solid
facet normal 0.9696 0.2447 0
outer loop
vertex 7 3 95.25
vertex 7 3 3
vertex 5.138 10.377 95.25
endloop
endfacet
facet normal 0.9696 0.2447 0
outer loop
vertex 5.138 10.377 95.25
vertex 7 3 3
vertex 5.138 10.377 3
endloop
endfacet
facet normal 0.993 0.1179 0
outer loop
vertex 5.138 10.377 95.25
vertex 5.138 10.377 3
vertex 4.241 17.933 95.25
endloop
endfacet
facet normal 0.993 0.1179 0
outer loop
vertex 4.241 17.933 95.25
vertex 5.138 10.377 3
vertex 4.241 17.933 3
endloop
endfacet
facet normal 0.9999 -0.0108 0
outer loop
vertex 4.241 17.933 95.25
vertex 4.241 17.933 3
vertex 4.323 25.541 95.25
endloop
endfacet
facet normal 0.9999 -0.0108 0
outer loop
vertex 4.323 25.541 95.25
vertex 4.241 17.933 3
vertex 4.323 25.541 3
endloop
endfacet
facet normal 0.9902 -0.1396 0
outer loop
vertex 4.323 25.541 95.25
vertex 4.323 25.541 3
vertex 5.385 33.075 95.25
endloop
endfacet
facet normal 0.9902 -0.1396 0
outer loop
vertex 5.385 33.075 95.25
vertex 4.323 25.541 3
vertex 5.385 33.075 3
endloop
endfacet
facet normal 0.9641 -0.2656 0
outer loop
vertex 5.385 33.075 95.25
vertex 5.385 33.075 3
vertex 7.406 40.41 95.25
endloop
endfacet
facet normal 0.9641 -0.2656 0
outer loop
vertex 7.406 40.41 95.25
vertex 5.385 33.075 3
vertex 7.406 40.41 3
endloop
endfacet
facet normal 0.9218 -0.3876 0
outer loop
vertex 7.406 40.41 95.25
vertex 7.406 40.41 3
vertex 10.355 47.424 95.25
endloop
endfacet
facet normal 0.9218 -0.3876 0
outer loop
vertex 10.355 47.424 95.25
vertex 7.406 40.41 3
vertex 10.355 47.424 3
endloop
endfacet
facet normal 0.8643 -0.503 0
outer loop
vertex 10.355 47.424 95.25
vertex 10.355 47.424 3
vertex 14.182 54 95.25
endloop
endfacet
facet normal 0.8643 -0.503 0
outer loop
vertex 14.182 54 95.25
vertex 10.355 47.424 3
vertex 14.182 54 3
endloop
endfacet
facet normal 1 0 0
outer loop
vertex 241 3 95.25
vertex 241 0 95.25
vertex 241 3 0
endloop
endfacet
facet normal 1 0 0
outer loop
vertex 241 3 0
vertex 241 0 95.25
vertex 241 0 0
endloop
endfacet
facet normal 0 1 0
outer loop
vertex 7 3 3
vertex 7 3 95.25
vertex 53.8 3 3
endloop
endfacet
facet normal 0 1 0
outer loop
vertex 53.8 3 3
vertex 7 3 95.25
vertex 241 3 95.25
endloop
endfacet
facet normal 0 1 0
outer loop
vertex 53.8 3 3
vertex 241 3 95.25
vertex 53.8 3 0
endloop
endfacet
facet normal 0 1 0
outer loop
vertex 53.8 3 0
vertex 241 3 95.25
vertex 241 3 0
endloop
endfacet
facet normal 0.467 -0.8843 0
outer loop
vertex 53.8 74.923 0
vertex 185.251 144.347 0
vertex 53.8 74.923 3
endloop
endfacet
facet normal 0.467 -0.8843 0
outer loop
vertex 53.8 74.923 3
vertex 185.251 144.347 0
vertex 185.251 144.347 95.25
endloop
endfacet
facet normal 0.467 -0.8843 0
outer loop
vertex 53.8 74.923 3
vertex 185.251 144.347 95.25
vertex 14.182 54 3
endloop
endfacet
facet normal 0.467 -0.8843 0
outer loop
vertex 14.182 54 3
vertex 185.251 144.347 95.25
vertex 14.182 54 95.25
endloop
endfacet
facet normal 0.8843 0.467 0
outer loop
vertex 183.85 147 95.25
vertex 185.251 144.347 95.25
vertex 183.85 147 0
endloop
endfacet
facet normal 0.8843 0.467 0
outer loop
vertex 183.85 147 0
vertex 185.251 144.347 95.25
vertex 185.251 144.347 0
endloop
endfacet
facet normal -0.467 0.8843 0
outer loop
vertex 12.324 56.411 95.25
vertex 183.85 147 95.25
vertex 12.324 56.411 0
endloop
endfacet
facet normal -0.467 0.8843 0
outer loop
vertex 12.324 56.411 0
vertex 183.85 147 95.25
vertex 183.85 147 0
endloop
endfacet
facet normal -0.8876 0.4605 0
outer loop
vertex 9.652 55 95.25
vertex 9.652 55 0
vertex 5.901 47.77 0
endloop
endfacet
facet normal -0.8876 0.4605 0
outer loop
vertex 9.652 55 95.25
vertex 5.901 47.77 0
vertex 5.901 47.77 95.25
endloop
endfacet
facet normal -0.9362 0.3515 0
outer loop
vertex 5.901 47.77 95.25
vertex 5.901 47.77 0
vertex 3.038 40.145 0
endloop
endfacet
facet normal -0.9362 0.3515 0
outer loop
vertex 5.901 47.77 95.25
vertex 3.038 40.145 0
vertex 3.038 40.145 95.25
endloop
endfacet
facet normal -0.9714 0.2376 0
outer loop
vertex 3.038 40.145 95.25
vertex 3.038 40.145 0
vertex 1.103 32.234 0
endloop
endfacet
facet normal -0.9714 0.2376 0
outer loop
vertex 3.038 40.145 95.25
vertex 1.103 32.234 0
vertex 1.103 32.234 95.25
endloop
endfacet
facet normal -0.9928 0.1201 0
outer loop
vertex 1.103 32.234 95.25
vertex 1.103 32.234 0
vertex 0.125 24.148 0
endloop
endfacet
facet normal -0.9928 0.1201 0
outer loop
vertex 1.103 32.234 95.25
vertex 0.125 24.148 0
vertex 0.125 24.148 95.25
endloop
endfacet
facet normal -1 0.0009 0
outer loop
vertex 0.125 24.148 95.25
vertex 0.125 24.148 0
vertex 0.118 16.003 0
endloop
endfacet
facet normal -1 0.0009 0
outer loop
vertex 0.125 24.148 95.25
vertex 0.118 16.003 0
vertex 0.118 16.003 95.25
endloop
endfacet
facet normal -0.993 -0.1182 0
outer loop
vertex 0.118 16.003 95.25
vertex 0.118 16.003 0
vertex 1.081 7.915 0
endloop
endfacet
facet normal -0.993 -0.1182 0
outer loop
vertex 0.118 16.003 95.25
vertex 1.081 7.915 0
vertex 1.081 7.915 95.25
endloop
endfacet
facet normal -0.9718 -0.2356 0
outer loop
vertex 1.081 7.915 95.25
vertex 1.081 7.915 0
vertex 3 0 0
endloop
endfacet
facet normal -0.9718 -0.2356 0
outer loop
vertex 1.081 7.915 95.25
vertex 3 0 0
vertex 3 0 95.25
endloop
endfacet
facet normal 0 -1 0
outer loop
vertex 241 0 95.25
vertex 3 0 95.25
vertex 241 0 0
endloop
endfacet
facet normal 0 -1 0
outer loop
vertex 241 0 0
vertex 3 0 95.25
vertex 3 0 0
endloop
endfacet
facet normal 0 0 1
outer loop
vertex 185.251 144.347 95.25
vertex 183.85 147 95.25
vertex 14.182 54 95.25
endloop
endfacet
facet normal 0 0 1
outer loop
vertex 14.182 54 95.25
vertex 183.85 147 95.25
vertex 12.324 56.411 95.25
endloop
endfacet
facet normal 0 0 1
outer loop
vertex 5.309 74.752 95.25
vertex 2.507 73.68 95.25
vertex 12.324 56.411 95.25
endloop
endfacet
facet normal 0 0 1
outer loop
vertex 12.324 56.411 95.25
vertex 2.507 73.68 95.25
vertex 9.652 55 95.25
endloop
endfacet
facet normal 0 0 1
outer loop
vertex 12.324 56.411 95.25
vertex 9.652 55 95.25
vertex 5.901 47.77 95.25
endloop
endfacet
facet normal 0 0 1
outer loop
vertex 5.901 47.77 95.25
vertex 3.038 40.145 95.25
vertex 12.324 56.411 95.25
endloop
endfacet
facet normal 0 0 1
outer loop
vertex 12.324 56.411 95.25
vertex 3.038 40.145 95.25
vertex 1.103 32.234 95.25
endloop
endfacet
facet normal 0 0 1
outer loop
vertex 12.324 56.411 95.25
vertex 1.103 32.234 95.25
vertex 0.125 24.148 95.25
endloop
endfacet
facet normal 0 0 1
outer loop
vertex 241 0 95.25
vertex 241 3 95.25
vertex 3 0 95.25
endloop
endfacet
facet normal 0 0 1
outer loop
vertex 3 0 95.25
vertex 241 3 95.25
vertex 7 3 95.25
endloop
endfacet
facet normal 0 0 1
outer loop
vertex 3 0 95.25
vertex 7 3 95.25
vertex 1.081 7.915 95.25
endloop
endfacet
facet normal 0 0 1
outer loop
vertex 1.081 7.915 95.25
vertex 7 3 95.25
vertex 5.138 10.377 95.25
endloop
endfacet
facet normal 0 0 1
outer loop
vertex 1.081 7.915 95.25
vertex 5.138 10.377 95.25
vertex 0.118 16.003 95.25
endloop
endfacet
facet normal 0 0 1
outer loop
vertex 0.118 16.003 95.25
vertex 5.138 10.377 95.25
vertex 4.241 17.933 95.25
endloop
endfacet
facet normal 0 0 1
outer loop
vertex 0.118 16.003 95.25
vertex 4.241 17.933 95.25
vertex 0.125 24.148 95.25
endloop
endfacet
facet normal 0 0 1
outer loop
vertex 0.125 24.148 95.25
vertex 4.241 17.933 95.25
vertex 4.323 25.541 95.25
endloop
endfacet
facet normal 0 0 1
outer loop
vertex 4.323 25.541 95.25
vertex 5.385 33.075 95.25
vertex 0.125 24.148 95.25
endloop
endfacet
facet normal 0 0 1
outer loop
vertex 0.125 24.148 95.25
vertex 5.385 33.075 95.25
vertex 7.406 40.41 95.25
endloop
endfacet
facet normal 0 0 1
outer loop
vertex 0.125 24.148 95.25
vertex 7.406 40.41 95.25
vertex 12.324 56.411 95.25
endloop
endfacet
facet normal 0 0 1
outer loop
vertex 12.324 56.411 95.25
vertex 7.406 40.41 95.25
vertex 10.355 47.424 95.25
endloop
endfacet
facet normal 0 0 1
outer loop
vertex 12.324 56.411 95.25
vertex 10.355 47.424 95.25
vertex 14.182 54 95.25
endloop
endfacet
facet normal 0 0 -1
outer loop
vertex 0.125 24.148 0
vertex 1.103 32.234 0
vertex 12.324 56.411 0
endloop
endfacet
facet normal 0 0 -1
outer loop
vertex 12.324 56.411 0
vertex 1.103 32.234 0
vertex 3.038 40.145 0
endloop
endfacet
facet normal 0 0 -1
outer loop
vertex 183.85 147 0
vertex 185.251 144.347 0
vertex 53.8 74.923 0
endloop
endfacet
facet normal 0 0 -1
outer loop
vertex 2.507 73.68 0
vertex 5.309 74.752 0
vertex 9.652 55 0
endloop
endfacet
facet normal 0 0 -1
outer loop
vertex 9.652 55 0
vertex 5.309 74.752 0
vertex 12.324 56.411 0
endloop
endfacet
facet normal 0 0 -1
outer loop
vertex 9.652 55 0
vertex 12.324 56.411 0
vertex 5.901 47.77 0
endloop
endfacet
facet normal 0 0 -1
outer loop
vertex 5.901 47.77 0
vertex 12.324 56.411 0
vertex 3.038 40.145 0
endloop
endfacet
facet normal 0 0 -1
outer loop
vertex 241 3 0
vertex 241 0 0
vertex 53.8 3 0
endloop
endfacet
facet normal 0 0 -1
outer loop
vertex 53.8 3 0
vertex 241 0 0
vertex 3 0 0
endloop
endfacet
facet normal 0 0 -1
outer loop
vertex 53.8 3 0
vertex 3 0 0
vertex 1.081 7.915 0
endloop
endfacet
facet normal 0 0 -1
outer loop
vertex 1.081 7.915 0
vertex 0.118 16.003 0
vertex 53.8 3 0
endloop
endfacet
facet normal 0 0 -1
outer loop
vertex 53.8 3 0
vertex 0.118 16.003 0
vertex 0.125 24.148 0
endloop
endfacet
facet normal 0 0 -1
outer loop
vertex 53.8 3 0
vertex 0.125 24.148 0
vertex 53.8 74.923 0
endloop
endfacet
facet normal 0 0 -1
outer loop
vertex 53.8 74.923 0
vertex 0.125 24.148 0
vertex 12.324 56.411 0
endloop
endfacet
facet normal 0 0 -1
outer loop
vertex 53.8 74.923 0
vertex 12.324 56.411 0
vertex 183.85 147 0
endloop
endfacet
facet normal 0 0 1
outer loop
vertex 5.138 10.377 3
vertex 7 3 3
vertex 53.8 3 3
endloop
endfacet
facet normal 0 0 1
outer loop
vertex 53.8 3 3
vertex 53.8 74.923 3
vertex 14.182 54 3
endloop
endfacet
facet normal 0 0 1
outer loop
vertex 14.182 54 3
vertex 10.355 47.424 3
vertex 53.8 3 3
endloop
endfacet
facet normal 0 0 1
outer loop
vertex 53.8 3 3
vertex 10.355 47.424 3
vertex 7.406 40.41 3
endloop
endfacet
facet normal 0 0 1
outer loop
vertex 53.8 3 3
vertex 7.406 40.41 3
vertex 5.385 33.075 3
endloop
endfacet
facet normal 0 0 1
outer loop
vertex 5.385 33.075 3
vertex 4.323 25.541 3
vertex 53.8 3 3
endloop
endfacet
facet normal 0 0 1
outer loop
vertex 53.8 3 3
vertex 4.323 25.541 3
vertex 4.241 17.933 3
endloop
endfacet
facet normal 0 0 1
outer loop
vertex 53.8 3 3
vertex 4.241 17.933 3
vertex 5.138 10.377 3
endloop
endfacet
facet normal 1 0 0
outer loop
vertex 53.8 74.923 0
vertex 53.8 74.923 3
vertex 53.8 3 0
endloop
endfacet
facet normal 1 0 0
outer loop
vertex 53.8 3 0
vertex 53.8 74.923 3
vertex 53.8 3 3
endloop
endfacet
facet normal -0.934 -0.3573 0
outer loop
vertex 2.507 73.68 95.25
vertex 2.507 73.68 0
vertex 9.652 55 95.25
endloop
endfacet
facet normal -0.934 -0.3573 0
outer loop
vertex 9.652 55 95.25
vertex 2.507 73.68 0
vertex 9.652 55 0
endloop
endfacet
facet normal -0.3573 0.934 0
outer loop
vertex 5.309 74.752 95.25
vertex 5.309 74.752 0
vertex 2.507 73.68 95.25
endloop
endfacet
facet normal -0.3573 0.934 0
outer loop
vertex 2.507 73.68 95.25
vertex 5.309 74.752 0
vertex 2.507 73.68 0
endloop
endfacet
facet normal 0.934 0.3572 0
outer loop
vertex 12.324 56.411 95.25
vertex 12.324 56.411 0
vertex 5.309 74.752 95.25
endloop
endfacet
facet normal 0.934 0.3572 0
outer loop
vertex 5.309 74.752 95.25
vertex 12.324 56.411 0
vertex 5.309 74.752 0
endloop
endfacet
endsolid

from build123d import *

# Parameters (mm, degrees)
BOSS_EXTRUDE1_DEPTH = 95.25
BOSS_EXTRUDE2_DEPTH = 3
BOSS_EXTRUDE3_DEPTH = 95.25


with BuildPart() as part:
    # Sketch1 → Boss-Extrude1 (new body)
    with BuildSketch(Plane.XY):
        with BuildLine():
            Line((241, 0), (3, 0))
            ThreePointArc((3, 0), (0.493692681, 28.205363915), (9.651836979, 55))
            Line((9.651836979, 55), (183.85, 147))
            Line((183.85, 147), (185.251015228, 144.347236096))
            Line((185.251015228, 144.347236096), (14.182291728, 54))
            ThreePointArc((14.182291728, 54), (4.732417832, 29.325080272), (7, 3))
            Line((7, 3), (241, 3))
            Line((241, 3), (241, 0))
        make_face()
    extrude(amount=BOSS_EXTRUDE1_DEPTH)

    # Sketch2 → Boss-Extrude2 (add)
    with BuildSketch(Plane(origin=(0, 0, 0), x_dir=(-1, 0, 0), z_dir=(0, 0, -1))):
        with BuildLine():
            Line((-53.8, 78.316152866), (-53.8, 0))
            Line((-53.8, 0), (-3, 0))
            ThreePointArc((-3, 0), (-0.493692681, 28.205363915), (-9.651836979, 55))
            Line((-9.651836979, 55), (-53.8, 78.316152866))
        make_face()
    extrude(amount=-BOSS_EXTRUDE2_DEPTH)

    # Sketch3 → Boss-Extrude3 (add)
    with BuildSketch(Plane(origin=(0, 0, 0), x_dir=(-1, 0, 0), z_dir=(0, 0, -1))):
        Polygon((-9.651836979, 55), (-2.507196918, 73.680313659), (-5.309243966, 74.752009668), (-12.324009257, 56.411265454), align=None)
    extrude(amount=-BOSS_EXTRUDE3_DEPTH)


solid = part.part
